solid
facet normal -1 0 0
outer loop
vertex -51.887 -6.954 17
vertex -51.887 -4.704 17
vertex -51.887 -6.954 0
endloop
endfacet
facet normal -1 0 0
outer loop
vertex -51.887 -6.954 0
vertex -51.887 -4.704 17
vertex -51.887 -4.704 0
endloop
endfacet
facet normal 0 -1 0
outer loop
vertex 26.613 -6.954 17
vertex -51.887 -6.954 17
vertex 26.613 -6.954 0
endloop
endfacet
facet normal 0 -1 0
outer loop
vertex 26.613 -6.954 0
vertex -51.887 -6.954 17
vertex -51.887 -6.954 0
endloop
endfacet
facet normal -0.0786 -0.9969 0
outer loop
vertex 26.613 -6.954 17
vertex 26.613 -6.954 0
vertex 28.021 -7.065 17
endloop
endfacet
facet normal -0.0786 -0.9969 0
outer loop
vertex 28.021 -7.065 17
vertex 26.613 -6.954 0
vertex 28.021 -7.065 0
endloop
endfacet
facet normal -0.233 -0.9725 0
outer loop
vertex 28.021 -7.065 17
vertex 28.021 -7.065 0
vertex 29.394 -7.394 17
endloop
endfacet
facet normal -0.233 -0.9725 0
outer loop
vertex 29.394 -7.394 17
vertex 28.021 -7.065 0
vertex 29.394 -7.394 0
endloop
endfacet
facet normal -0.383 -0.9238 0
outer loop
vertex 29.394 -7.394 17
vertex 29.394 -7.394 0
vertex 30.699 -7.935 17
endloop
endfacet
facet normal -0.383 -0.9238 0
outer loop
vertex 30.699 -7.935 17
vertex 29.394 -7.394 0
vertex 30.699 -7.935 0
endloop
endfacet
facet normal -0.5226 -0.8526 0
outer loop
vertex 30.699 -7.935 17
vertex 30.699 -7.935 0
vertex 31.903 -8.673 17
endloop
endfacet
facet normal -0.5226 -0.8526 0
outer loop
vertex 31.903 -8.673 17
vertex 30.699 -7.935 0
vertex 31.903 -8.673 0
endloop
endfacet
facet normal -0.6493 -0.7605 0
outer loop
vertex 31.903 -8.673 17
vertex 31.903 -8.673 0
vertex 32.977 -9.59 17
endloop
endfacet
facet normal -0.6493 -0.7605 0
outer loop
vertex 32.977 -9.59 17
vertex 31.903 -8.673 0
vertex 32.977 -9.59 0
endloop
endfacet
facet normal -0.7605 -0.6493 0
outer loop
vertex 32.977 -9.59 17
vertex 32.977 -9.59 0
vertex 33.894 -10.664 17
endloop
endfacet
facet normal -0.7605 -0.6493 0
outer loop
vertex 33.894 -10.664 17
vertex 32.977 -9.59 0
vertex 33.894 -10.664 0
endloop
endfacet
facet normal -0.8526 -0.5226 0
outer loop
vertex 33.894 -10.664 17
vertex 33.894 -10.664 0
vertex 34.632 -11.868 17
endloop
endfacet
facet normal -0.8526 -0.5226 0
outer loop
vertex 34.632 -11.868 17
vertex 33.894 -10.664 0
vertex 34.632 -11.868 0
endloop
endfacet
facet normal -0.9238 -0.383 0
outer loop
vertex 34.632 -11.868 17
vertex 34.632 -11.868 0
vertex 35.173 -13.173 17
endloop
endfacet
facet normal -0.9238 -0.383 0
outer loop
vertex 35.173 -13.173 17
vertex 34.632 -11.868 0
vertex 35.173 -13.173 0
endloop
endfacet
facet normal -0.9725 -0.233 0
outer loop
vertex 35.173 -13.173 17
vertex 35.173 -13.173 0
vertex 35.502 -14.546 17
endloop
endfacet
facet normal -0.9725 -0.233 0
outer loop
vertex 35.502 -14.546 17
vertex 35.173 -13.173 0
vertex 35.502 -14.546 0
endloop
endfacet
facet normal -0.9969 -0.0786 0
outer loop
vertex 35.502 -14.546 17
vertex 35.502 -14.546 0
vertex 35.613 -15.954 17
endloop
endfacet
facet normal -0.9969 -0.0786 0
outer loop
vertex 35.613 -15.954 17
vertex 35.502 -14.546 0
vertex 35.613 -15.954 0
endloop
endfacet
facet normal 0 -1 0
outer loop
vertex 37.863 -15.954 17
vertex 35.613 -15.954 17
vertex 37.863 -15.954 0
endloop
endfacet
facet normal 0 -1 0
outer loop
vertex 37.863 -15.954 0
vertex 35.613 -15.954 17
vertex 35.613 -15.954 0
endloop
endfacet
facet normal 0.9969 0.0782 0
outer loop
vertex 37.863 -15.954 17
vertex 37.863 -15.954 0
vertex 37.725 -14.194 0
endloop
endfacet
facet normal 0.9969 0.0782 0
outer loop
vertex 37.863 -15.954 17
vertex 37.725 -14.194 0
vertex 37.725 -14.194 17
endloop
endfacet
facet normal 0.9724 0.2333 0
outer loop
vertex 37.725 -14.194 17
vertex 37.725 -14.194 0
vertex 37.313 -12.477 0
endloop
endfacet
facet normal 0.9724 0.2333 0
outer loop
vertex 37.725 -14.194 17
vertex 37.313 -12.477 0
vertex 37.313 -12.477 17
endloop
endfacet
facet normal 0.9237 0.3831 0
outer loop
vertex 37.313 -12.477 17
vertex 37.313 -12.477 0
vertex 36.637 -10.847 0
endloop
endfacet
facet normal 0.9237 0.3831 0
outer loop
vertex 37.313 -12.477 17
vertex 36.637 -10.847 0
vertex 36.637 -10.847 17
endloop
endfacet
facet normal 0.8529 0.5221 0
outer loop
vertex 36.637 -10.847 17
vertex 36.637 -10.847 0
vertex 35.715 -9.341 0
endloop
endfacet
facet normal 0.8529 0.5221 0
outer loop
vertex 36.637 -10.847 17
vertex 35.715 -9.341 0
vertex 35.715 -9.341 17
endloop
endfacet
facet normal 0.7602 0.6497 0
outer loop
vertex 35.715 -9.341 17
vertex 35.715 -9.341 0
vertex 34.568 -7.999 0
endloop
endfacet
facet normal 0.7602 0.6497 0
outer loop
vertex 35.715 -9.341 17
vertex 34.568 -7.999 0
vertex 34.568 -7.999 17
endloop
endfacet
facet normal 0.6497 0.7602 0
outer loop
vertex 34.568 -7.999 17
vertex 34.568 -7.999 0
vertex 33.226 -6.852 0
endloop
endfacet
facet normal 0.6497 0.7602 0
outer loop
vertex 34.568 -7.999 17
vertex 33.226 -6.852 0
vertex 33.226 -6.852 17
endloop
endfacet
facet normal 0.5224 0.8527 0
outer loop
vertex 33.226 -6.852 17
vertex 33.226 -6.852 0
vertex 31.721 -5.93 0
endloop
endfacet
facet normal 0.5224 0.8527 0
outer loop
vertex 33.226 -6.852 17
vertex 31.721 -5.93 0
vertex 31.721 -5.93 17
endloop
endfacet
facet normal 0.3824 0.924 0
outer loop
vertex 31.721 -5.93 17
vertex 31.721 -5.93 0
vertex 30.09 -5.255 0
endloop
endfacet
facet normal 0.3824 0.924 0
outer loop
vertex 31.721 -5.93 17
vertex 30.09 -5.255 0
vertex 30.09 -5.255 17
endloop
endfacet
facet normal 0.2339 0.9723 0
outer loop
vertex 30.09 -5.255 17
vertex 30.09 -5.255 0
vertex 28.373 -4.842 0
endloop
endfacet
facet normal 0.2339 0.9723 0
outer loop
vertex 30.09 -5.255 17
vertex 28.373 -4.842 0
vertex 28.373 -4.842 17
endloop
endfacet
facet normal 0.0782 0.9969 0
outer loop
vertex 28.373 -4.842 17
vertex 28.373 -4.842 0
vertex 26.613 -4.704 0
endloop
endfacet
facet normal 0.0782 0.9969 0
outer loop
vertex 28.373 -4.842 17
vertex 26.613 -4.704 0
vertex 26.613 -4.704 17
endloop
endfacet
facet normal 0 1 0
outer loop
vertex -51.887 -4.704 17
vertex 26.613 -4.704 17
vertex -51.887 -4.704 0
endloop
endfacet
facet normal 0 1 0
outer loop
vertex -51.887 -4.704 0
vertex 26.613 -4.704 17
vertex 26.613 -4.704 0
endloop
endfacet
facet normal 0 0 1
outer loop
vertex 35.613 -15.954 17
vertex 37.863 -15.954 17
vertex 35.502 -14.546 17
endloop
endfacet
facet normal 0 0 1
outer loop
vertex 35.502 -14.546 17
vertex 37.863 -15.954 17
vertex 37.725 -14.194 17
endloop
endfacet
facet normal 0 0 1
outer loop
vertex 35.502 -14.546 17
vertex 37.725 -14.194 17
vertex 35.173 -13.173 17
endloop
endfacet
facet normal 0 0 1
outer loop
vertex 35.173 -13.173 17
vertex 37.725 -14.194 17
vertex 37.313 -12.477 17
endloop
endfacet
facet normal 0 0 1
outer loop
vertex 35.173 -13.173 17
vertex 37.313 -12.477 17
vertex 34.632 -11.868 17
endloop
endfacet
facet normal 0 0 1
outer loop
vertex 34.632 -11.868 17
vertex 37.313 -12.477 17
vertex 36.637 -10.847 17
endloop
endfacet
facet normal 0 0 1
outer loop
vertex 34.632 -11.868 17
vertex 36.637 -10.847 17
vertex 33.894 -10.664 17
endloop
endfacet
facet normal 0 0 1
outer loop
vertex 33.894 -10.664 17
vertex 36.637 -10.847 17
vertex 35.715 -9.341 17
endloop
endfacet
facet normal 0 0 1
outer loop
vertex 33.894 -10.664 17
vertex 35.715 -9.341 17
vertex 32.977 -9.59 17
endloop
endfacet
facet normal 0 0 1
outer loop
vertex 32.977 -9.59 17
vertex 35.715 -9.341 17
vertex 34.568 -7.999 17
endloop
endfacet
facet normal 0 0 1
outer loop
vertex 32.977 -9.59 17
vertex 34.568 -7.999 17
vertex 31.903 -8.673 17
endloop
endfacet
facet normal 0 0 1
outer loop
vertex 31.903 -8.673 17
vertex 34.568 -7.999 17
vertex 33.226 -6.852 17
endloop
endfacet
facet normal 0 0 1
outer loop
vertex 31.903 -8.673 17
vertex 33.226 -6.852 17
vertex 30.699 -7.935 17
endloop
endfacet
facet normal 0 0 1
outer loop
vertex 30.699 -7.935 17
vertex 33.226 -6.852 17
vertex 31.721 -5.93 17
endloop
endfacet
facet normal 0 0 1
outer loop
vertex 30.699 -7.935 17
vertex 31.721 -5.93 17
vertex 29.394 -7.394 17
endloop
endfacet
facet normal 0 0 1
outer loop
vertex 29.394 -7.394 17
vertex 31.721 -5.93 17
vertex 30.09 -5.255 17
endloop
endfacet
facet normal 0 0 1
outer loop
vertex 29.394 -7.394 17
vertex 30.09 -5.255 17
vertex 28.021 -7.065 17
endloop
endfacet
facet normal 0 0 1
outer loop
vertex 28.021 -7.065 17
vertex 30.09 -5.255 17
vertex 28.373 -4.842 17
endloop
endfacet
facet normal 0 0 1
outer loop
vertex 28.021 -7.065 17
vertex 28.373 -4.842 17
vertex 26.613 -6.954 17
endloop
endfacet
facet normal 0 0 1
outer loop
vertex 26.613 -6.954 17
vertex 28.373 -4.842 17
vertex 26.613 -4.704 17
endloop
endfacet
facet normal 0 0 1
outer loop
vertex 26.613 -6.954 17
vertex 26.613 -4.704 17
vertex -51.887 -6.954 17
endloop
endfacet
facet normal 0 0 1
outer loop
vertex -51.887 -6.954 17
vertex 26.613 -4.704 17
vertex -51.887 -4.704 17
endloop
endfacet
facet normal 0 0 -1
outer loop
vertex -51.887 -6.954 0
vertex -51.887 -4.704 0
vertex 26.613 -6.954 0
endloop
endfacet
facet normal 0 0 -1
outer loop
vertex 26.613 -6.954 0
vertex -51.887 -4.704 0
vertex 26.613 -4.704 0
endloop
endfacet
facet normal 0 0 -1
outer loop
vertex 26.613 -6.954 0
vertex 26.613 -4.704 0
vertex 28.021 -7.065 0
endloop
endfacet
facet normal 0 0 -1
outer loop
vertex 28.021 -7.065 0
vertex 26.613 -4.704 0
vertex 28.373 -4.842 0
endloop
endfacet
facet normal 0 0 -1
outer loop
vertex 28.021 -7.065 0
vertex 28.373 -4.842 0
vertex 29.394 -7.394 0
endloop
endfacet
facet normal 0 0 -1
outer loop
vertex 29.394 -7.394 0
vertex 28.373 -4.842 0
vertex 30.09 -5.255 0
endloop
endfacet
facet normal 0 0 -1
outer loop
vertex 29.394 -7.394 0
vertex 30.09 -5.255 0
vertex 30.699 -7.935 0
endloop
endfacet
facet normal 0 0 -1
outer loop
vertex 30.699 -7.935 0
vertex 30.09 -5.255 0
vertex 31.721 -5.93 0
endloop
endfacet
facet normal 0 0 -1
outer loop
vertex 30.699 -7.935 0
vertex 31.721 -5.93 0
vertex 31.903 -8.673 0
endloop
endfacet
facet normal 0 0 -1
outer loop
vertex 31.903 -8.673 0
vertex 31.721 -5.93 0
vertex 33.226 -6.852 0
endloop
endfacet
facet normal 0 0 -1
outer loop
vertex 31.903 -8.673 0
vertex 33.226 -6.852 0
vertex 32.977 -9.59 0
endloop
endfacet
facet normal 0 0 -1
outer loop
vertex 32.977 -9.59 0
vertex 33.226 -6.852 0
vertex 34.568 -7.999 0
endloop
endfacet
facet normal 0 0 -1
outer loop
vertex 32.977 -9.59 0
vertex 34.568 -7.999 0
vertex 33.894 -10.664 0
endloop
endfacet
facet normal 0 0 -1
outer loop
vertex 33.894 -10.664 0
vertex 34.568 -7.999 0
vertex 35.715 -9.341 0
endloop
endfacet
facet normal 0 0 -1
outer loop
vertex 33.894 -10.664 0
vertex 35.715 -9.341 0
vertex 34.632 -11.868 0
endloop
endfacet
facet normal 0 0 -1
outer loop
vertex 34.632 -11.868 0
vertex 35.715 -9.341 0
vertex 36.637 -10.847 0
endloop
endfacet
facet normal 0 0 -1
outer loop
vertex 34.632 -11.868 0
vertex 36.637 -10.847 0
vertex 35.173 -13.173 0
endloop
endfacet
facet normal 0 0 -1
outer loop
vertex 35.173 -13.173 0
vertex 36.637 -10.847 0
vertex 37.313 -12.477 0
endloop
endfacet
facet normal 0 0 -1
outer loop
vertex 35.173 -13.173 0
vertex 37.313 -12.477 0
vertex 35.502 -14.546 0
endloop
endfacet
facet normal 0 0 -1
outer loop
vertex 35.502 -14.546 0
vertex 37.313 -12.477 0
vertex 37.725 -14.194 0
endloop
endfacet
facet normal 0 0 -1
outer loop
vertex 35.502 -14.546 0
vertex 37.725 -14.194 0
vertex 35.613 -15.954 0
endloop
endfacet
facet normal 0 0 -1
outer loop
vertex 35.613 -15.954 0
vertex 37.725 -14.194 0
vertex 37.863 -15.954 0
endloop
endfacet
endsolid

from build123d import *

# Parameters (mm, degrees)
BOSS_EXTRUDE1_DEPTH = 17


with BuildPart() as part:
    # Sketch2 → Boss-Extrude1 (new body)
    with BuildSketch(Plane.XY):
        with BuildLine():
            Line((35.613241121, -15.95389552), (37.863241121, -15.95389552))
            ThreePointArc((37.863241121, -15.95389552), (34.568192409, -7.998944231), (26.613241121, -4.70389552))
            Line((26.613241121, -4.70389552), (-51.886758879, -4.70389552))
            Line((-51.886758879, -4.70389552), (-51.886758879, -6.95389552))
            Line((-51.886758879, -6.95389552), (26.613241121, -6.95389552))
            ThreePointArc((26.613241121, -6.95389552), (32.977202152, -9.589934489), (35.613241121, -15.95389552))
        make_face()
    extrude(amount=BOSS_EXTRUDE1_DEPTH)


solid = part.part
